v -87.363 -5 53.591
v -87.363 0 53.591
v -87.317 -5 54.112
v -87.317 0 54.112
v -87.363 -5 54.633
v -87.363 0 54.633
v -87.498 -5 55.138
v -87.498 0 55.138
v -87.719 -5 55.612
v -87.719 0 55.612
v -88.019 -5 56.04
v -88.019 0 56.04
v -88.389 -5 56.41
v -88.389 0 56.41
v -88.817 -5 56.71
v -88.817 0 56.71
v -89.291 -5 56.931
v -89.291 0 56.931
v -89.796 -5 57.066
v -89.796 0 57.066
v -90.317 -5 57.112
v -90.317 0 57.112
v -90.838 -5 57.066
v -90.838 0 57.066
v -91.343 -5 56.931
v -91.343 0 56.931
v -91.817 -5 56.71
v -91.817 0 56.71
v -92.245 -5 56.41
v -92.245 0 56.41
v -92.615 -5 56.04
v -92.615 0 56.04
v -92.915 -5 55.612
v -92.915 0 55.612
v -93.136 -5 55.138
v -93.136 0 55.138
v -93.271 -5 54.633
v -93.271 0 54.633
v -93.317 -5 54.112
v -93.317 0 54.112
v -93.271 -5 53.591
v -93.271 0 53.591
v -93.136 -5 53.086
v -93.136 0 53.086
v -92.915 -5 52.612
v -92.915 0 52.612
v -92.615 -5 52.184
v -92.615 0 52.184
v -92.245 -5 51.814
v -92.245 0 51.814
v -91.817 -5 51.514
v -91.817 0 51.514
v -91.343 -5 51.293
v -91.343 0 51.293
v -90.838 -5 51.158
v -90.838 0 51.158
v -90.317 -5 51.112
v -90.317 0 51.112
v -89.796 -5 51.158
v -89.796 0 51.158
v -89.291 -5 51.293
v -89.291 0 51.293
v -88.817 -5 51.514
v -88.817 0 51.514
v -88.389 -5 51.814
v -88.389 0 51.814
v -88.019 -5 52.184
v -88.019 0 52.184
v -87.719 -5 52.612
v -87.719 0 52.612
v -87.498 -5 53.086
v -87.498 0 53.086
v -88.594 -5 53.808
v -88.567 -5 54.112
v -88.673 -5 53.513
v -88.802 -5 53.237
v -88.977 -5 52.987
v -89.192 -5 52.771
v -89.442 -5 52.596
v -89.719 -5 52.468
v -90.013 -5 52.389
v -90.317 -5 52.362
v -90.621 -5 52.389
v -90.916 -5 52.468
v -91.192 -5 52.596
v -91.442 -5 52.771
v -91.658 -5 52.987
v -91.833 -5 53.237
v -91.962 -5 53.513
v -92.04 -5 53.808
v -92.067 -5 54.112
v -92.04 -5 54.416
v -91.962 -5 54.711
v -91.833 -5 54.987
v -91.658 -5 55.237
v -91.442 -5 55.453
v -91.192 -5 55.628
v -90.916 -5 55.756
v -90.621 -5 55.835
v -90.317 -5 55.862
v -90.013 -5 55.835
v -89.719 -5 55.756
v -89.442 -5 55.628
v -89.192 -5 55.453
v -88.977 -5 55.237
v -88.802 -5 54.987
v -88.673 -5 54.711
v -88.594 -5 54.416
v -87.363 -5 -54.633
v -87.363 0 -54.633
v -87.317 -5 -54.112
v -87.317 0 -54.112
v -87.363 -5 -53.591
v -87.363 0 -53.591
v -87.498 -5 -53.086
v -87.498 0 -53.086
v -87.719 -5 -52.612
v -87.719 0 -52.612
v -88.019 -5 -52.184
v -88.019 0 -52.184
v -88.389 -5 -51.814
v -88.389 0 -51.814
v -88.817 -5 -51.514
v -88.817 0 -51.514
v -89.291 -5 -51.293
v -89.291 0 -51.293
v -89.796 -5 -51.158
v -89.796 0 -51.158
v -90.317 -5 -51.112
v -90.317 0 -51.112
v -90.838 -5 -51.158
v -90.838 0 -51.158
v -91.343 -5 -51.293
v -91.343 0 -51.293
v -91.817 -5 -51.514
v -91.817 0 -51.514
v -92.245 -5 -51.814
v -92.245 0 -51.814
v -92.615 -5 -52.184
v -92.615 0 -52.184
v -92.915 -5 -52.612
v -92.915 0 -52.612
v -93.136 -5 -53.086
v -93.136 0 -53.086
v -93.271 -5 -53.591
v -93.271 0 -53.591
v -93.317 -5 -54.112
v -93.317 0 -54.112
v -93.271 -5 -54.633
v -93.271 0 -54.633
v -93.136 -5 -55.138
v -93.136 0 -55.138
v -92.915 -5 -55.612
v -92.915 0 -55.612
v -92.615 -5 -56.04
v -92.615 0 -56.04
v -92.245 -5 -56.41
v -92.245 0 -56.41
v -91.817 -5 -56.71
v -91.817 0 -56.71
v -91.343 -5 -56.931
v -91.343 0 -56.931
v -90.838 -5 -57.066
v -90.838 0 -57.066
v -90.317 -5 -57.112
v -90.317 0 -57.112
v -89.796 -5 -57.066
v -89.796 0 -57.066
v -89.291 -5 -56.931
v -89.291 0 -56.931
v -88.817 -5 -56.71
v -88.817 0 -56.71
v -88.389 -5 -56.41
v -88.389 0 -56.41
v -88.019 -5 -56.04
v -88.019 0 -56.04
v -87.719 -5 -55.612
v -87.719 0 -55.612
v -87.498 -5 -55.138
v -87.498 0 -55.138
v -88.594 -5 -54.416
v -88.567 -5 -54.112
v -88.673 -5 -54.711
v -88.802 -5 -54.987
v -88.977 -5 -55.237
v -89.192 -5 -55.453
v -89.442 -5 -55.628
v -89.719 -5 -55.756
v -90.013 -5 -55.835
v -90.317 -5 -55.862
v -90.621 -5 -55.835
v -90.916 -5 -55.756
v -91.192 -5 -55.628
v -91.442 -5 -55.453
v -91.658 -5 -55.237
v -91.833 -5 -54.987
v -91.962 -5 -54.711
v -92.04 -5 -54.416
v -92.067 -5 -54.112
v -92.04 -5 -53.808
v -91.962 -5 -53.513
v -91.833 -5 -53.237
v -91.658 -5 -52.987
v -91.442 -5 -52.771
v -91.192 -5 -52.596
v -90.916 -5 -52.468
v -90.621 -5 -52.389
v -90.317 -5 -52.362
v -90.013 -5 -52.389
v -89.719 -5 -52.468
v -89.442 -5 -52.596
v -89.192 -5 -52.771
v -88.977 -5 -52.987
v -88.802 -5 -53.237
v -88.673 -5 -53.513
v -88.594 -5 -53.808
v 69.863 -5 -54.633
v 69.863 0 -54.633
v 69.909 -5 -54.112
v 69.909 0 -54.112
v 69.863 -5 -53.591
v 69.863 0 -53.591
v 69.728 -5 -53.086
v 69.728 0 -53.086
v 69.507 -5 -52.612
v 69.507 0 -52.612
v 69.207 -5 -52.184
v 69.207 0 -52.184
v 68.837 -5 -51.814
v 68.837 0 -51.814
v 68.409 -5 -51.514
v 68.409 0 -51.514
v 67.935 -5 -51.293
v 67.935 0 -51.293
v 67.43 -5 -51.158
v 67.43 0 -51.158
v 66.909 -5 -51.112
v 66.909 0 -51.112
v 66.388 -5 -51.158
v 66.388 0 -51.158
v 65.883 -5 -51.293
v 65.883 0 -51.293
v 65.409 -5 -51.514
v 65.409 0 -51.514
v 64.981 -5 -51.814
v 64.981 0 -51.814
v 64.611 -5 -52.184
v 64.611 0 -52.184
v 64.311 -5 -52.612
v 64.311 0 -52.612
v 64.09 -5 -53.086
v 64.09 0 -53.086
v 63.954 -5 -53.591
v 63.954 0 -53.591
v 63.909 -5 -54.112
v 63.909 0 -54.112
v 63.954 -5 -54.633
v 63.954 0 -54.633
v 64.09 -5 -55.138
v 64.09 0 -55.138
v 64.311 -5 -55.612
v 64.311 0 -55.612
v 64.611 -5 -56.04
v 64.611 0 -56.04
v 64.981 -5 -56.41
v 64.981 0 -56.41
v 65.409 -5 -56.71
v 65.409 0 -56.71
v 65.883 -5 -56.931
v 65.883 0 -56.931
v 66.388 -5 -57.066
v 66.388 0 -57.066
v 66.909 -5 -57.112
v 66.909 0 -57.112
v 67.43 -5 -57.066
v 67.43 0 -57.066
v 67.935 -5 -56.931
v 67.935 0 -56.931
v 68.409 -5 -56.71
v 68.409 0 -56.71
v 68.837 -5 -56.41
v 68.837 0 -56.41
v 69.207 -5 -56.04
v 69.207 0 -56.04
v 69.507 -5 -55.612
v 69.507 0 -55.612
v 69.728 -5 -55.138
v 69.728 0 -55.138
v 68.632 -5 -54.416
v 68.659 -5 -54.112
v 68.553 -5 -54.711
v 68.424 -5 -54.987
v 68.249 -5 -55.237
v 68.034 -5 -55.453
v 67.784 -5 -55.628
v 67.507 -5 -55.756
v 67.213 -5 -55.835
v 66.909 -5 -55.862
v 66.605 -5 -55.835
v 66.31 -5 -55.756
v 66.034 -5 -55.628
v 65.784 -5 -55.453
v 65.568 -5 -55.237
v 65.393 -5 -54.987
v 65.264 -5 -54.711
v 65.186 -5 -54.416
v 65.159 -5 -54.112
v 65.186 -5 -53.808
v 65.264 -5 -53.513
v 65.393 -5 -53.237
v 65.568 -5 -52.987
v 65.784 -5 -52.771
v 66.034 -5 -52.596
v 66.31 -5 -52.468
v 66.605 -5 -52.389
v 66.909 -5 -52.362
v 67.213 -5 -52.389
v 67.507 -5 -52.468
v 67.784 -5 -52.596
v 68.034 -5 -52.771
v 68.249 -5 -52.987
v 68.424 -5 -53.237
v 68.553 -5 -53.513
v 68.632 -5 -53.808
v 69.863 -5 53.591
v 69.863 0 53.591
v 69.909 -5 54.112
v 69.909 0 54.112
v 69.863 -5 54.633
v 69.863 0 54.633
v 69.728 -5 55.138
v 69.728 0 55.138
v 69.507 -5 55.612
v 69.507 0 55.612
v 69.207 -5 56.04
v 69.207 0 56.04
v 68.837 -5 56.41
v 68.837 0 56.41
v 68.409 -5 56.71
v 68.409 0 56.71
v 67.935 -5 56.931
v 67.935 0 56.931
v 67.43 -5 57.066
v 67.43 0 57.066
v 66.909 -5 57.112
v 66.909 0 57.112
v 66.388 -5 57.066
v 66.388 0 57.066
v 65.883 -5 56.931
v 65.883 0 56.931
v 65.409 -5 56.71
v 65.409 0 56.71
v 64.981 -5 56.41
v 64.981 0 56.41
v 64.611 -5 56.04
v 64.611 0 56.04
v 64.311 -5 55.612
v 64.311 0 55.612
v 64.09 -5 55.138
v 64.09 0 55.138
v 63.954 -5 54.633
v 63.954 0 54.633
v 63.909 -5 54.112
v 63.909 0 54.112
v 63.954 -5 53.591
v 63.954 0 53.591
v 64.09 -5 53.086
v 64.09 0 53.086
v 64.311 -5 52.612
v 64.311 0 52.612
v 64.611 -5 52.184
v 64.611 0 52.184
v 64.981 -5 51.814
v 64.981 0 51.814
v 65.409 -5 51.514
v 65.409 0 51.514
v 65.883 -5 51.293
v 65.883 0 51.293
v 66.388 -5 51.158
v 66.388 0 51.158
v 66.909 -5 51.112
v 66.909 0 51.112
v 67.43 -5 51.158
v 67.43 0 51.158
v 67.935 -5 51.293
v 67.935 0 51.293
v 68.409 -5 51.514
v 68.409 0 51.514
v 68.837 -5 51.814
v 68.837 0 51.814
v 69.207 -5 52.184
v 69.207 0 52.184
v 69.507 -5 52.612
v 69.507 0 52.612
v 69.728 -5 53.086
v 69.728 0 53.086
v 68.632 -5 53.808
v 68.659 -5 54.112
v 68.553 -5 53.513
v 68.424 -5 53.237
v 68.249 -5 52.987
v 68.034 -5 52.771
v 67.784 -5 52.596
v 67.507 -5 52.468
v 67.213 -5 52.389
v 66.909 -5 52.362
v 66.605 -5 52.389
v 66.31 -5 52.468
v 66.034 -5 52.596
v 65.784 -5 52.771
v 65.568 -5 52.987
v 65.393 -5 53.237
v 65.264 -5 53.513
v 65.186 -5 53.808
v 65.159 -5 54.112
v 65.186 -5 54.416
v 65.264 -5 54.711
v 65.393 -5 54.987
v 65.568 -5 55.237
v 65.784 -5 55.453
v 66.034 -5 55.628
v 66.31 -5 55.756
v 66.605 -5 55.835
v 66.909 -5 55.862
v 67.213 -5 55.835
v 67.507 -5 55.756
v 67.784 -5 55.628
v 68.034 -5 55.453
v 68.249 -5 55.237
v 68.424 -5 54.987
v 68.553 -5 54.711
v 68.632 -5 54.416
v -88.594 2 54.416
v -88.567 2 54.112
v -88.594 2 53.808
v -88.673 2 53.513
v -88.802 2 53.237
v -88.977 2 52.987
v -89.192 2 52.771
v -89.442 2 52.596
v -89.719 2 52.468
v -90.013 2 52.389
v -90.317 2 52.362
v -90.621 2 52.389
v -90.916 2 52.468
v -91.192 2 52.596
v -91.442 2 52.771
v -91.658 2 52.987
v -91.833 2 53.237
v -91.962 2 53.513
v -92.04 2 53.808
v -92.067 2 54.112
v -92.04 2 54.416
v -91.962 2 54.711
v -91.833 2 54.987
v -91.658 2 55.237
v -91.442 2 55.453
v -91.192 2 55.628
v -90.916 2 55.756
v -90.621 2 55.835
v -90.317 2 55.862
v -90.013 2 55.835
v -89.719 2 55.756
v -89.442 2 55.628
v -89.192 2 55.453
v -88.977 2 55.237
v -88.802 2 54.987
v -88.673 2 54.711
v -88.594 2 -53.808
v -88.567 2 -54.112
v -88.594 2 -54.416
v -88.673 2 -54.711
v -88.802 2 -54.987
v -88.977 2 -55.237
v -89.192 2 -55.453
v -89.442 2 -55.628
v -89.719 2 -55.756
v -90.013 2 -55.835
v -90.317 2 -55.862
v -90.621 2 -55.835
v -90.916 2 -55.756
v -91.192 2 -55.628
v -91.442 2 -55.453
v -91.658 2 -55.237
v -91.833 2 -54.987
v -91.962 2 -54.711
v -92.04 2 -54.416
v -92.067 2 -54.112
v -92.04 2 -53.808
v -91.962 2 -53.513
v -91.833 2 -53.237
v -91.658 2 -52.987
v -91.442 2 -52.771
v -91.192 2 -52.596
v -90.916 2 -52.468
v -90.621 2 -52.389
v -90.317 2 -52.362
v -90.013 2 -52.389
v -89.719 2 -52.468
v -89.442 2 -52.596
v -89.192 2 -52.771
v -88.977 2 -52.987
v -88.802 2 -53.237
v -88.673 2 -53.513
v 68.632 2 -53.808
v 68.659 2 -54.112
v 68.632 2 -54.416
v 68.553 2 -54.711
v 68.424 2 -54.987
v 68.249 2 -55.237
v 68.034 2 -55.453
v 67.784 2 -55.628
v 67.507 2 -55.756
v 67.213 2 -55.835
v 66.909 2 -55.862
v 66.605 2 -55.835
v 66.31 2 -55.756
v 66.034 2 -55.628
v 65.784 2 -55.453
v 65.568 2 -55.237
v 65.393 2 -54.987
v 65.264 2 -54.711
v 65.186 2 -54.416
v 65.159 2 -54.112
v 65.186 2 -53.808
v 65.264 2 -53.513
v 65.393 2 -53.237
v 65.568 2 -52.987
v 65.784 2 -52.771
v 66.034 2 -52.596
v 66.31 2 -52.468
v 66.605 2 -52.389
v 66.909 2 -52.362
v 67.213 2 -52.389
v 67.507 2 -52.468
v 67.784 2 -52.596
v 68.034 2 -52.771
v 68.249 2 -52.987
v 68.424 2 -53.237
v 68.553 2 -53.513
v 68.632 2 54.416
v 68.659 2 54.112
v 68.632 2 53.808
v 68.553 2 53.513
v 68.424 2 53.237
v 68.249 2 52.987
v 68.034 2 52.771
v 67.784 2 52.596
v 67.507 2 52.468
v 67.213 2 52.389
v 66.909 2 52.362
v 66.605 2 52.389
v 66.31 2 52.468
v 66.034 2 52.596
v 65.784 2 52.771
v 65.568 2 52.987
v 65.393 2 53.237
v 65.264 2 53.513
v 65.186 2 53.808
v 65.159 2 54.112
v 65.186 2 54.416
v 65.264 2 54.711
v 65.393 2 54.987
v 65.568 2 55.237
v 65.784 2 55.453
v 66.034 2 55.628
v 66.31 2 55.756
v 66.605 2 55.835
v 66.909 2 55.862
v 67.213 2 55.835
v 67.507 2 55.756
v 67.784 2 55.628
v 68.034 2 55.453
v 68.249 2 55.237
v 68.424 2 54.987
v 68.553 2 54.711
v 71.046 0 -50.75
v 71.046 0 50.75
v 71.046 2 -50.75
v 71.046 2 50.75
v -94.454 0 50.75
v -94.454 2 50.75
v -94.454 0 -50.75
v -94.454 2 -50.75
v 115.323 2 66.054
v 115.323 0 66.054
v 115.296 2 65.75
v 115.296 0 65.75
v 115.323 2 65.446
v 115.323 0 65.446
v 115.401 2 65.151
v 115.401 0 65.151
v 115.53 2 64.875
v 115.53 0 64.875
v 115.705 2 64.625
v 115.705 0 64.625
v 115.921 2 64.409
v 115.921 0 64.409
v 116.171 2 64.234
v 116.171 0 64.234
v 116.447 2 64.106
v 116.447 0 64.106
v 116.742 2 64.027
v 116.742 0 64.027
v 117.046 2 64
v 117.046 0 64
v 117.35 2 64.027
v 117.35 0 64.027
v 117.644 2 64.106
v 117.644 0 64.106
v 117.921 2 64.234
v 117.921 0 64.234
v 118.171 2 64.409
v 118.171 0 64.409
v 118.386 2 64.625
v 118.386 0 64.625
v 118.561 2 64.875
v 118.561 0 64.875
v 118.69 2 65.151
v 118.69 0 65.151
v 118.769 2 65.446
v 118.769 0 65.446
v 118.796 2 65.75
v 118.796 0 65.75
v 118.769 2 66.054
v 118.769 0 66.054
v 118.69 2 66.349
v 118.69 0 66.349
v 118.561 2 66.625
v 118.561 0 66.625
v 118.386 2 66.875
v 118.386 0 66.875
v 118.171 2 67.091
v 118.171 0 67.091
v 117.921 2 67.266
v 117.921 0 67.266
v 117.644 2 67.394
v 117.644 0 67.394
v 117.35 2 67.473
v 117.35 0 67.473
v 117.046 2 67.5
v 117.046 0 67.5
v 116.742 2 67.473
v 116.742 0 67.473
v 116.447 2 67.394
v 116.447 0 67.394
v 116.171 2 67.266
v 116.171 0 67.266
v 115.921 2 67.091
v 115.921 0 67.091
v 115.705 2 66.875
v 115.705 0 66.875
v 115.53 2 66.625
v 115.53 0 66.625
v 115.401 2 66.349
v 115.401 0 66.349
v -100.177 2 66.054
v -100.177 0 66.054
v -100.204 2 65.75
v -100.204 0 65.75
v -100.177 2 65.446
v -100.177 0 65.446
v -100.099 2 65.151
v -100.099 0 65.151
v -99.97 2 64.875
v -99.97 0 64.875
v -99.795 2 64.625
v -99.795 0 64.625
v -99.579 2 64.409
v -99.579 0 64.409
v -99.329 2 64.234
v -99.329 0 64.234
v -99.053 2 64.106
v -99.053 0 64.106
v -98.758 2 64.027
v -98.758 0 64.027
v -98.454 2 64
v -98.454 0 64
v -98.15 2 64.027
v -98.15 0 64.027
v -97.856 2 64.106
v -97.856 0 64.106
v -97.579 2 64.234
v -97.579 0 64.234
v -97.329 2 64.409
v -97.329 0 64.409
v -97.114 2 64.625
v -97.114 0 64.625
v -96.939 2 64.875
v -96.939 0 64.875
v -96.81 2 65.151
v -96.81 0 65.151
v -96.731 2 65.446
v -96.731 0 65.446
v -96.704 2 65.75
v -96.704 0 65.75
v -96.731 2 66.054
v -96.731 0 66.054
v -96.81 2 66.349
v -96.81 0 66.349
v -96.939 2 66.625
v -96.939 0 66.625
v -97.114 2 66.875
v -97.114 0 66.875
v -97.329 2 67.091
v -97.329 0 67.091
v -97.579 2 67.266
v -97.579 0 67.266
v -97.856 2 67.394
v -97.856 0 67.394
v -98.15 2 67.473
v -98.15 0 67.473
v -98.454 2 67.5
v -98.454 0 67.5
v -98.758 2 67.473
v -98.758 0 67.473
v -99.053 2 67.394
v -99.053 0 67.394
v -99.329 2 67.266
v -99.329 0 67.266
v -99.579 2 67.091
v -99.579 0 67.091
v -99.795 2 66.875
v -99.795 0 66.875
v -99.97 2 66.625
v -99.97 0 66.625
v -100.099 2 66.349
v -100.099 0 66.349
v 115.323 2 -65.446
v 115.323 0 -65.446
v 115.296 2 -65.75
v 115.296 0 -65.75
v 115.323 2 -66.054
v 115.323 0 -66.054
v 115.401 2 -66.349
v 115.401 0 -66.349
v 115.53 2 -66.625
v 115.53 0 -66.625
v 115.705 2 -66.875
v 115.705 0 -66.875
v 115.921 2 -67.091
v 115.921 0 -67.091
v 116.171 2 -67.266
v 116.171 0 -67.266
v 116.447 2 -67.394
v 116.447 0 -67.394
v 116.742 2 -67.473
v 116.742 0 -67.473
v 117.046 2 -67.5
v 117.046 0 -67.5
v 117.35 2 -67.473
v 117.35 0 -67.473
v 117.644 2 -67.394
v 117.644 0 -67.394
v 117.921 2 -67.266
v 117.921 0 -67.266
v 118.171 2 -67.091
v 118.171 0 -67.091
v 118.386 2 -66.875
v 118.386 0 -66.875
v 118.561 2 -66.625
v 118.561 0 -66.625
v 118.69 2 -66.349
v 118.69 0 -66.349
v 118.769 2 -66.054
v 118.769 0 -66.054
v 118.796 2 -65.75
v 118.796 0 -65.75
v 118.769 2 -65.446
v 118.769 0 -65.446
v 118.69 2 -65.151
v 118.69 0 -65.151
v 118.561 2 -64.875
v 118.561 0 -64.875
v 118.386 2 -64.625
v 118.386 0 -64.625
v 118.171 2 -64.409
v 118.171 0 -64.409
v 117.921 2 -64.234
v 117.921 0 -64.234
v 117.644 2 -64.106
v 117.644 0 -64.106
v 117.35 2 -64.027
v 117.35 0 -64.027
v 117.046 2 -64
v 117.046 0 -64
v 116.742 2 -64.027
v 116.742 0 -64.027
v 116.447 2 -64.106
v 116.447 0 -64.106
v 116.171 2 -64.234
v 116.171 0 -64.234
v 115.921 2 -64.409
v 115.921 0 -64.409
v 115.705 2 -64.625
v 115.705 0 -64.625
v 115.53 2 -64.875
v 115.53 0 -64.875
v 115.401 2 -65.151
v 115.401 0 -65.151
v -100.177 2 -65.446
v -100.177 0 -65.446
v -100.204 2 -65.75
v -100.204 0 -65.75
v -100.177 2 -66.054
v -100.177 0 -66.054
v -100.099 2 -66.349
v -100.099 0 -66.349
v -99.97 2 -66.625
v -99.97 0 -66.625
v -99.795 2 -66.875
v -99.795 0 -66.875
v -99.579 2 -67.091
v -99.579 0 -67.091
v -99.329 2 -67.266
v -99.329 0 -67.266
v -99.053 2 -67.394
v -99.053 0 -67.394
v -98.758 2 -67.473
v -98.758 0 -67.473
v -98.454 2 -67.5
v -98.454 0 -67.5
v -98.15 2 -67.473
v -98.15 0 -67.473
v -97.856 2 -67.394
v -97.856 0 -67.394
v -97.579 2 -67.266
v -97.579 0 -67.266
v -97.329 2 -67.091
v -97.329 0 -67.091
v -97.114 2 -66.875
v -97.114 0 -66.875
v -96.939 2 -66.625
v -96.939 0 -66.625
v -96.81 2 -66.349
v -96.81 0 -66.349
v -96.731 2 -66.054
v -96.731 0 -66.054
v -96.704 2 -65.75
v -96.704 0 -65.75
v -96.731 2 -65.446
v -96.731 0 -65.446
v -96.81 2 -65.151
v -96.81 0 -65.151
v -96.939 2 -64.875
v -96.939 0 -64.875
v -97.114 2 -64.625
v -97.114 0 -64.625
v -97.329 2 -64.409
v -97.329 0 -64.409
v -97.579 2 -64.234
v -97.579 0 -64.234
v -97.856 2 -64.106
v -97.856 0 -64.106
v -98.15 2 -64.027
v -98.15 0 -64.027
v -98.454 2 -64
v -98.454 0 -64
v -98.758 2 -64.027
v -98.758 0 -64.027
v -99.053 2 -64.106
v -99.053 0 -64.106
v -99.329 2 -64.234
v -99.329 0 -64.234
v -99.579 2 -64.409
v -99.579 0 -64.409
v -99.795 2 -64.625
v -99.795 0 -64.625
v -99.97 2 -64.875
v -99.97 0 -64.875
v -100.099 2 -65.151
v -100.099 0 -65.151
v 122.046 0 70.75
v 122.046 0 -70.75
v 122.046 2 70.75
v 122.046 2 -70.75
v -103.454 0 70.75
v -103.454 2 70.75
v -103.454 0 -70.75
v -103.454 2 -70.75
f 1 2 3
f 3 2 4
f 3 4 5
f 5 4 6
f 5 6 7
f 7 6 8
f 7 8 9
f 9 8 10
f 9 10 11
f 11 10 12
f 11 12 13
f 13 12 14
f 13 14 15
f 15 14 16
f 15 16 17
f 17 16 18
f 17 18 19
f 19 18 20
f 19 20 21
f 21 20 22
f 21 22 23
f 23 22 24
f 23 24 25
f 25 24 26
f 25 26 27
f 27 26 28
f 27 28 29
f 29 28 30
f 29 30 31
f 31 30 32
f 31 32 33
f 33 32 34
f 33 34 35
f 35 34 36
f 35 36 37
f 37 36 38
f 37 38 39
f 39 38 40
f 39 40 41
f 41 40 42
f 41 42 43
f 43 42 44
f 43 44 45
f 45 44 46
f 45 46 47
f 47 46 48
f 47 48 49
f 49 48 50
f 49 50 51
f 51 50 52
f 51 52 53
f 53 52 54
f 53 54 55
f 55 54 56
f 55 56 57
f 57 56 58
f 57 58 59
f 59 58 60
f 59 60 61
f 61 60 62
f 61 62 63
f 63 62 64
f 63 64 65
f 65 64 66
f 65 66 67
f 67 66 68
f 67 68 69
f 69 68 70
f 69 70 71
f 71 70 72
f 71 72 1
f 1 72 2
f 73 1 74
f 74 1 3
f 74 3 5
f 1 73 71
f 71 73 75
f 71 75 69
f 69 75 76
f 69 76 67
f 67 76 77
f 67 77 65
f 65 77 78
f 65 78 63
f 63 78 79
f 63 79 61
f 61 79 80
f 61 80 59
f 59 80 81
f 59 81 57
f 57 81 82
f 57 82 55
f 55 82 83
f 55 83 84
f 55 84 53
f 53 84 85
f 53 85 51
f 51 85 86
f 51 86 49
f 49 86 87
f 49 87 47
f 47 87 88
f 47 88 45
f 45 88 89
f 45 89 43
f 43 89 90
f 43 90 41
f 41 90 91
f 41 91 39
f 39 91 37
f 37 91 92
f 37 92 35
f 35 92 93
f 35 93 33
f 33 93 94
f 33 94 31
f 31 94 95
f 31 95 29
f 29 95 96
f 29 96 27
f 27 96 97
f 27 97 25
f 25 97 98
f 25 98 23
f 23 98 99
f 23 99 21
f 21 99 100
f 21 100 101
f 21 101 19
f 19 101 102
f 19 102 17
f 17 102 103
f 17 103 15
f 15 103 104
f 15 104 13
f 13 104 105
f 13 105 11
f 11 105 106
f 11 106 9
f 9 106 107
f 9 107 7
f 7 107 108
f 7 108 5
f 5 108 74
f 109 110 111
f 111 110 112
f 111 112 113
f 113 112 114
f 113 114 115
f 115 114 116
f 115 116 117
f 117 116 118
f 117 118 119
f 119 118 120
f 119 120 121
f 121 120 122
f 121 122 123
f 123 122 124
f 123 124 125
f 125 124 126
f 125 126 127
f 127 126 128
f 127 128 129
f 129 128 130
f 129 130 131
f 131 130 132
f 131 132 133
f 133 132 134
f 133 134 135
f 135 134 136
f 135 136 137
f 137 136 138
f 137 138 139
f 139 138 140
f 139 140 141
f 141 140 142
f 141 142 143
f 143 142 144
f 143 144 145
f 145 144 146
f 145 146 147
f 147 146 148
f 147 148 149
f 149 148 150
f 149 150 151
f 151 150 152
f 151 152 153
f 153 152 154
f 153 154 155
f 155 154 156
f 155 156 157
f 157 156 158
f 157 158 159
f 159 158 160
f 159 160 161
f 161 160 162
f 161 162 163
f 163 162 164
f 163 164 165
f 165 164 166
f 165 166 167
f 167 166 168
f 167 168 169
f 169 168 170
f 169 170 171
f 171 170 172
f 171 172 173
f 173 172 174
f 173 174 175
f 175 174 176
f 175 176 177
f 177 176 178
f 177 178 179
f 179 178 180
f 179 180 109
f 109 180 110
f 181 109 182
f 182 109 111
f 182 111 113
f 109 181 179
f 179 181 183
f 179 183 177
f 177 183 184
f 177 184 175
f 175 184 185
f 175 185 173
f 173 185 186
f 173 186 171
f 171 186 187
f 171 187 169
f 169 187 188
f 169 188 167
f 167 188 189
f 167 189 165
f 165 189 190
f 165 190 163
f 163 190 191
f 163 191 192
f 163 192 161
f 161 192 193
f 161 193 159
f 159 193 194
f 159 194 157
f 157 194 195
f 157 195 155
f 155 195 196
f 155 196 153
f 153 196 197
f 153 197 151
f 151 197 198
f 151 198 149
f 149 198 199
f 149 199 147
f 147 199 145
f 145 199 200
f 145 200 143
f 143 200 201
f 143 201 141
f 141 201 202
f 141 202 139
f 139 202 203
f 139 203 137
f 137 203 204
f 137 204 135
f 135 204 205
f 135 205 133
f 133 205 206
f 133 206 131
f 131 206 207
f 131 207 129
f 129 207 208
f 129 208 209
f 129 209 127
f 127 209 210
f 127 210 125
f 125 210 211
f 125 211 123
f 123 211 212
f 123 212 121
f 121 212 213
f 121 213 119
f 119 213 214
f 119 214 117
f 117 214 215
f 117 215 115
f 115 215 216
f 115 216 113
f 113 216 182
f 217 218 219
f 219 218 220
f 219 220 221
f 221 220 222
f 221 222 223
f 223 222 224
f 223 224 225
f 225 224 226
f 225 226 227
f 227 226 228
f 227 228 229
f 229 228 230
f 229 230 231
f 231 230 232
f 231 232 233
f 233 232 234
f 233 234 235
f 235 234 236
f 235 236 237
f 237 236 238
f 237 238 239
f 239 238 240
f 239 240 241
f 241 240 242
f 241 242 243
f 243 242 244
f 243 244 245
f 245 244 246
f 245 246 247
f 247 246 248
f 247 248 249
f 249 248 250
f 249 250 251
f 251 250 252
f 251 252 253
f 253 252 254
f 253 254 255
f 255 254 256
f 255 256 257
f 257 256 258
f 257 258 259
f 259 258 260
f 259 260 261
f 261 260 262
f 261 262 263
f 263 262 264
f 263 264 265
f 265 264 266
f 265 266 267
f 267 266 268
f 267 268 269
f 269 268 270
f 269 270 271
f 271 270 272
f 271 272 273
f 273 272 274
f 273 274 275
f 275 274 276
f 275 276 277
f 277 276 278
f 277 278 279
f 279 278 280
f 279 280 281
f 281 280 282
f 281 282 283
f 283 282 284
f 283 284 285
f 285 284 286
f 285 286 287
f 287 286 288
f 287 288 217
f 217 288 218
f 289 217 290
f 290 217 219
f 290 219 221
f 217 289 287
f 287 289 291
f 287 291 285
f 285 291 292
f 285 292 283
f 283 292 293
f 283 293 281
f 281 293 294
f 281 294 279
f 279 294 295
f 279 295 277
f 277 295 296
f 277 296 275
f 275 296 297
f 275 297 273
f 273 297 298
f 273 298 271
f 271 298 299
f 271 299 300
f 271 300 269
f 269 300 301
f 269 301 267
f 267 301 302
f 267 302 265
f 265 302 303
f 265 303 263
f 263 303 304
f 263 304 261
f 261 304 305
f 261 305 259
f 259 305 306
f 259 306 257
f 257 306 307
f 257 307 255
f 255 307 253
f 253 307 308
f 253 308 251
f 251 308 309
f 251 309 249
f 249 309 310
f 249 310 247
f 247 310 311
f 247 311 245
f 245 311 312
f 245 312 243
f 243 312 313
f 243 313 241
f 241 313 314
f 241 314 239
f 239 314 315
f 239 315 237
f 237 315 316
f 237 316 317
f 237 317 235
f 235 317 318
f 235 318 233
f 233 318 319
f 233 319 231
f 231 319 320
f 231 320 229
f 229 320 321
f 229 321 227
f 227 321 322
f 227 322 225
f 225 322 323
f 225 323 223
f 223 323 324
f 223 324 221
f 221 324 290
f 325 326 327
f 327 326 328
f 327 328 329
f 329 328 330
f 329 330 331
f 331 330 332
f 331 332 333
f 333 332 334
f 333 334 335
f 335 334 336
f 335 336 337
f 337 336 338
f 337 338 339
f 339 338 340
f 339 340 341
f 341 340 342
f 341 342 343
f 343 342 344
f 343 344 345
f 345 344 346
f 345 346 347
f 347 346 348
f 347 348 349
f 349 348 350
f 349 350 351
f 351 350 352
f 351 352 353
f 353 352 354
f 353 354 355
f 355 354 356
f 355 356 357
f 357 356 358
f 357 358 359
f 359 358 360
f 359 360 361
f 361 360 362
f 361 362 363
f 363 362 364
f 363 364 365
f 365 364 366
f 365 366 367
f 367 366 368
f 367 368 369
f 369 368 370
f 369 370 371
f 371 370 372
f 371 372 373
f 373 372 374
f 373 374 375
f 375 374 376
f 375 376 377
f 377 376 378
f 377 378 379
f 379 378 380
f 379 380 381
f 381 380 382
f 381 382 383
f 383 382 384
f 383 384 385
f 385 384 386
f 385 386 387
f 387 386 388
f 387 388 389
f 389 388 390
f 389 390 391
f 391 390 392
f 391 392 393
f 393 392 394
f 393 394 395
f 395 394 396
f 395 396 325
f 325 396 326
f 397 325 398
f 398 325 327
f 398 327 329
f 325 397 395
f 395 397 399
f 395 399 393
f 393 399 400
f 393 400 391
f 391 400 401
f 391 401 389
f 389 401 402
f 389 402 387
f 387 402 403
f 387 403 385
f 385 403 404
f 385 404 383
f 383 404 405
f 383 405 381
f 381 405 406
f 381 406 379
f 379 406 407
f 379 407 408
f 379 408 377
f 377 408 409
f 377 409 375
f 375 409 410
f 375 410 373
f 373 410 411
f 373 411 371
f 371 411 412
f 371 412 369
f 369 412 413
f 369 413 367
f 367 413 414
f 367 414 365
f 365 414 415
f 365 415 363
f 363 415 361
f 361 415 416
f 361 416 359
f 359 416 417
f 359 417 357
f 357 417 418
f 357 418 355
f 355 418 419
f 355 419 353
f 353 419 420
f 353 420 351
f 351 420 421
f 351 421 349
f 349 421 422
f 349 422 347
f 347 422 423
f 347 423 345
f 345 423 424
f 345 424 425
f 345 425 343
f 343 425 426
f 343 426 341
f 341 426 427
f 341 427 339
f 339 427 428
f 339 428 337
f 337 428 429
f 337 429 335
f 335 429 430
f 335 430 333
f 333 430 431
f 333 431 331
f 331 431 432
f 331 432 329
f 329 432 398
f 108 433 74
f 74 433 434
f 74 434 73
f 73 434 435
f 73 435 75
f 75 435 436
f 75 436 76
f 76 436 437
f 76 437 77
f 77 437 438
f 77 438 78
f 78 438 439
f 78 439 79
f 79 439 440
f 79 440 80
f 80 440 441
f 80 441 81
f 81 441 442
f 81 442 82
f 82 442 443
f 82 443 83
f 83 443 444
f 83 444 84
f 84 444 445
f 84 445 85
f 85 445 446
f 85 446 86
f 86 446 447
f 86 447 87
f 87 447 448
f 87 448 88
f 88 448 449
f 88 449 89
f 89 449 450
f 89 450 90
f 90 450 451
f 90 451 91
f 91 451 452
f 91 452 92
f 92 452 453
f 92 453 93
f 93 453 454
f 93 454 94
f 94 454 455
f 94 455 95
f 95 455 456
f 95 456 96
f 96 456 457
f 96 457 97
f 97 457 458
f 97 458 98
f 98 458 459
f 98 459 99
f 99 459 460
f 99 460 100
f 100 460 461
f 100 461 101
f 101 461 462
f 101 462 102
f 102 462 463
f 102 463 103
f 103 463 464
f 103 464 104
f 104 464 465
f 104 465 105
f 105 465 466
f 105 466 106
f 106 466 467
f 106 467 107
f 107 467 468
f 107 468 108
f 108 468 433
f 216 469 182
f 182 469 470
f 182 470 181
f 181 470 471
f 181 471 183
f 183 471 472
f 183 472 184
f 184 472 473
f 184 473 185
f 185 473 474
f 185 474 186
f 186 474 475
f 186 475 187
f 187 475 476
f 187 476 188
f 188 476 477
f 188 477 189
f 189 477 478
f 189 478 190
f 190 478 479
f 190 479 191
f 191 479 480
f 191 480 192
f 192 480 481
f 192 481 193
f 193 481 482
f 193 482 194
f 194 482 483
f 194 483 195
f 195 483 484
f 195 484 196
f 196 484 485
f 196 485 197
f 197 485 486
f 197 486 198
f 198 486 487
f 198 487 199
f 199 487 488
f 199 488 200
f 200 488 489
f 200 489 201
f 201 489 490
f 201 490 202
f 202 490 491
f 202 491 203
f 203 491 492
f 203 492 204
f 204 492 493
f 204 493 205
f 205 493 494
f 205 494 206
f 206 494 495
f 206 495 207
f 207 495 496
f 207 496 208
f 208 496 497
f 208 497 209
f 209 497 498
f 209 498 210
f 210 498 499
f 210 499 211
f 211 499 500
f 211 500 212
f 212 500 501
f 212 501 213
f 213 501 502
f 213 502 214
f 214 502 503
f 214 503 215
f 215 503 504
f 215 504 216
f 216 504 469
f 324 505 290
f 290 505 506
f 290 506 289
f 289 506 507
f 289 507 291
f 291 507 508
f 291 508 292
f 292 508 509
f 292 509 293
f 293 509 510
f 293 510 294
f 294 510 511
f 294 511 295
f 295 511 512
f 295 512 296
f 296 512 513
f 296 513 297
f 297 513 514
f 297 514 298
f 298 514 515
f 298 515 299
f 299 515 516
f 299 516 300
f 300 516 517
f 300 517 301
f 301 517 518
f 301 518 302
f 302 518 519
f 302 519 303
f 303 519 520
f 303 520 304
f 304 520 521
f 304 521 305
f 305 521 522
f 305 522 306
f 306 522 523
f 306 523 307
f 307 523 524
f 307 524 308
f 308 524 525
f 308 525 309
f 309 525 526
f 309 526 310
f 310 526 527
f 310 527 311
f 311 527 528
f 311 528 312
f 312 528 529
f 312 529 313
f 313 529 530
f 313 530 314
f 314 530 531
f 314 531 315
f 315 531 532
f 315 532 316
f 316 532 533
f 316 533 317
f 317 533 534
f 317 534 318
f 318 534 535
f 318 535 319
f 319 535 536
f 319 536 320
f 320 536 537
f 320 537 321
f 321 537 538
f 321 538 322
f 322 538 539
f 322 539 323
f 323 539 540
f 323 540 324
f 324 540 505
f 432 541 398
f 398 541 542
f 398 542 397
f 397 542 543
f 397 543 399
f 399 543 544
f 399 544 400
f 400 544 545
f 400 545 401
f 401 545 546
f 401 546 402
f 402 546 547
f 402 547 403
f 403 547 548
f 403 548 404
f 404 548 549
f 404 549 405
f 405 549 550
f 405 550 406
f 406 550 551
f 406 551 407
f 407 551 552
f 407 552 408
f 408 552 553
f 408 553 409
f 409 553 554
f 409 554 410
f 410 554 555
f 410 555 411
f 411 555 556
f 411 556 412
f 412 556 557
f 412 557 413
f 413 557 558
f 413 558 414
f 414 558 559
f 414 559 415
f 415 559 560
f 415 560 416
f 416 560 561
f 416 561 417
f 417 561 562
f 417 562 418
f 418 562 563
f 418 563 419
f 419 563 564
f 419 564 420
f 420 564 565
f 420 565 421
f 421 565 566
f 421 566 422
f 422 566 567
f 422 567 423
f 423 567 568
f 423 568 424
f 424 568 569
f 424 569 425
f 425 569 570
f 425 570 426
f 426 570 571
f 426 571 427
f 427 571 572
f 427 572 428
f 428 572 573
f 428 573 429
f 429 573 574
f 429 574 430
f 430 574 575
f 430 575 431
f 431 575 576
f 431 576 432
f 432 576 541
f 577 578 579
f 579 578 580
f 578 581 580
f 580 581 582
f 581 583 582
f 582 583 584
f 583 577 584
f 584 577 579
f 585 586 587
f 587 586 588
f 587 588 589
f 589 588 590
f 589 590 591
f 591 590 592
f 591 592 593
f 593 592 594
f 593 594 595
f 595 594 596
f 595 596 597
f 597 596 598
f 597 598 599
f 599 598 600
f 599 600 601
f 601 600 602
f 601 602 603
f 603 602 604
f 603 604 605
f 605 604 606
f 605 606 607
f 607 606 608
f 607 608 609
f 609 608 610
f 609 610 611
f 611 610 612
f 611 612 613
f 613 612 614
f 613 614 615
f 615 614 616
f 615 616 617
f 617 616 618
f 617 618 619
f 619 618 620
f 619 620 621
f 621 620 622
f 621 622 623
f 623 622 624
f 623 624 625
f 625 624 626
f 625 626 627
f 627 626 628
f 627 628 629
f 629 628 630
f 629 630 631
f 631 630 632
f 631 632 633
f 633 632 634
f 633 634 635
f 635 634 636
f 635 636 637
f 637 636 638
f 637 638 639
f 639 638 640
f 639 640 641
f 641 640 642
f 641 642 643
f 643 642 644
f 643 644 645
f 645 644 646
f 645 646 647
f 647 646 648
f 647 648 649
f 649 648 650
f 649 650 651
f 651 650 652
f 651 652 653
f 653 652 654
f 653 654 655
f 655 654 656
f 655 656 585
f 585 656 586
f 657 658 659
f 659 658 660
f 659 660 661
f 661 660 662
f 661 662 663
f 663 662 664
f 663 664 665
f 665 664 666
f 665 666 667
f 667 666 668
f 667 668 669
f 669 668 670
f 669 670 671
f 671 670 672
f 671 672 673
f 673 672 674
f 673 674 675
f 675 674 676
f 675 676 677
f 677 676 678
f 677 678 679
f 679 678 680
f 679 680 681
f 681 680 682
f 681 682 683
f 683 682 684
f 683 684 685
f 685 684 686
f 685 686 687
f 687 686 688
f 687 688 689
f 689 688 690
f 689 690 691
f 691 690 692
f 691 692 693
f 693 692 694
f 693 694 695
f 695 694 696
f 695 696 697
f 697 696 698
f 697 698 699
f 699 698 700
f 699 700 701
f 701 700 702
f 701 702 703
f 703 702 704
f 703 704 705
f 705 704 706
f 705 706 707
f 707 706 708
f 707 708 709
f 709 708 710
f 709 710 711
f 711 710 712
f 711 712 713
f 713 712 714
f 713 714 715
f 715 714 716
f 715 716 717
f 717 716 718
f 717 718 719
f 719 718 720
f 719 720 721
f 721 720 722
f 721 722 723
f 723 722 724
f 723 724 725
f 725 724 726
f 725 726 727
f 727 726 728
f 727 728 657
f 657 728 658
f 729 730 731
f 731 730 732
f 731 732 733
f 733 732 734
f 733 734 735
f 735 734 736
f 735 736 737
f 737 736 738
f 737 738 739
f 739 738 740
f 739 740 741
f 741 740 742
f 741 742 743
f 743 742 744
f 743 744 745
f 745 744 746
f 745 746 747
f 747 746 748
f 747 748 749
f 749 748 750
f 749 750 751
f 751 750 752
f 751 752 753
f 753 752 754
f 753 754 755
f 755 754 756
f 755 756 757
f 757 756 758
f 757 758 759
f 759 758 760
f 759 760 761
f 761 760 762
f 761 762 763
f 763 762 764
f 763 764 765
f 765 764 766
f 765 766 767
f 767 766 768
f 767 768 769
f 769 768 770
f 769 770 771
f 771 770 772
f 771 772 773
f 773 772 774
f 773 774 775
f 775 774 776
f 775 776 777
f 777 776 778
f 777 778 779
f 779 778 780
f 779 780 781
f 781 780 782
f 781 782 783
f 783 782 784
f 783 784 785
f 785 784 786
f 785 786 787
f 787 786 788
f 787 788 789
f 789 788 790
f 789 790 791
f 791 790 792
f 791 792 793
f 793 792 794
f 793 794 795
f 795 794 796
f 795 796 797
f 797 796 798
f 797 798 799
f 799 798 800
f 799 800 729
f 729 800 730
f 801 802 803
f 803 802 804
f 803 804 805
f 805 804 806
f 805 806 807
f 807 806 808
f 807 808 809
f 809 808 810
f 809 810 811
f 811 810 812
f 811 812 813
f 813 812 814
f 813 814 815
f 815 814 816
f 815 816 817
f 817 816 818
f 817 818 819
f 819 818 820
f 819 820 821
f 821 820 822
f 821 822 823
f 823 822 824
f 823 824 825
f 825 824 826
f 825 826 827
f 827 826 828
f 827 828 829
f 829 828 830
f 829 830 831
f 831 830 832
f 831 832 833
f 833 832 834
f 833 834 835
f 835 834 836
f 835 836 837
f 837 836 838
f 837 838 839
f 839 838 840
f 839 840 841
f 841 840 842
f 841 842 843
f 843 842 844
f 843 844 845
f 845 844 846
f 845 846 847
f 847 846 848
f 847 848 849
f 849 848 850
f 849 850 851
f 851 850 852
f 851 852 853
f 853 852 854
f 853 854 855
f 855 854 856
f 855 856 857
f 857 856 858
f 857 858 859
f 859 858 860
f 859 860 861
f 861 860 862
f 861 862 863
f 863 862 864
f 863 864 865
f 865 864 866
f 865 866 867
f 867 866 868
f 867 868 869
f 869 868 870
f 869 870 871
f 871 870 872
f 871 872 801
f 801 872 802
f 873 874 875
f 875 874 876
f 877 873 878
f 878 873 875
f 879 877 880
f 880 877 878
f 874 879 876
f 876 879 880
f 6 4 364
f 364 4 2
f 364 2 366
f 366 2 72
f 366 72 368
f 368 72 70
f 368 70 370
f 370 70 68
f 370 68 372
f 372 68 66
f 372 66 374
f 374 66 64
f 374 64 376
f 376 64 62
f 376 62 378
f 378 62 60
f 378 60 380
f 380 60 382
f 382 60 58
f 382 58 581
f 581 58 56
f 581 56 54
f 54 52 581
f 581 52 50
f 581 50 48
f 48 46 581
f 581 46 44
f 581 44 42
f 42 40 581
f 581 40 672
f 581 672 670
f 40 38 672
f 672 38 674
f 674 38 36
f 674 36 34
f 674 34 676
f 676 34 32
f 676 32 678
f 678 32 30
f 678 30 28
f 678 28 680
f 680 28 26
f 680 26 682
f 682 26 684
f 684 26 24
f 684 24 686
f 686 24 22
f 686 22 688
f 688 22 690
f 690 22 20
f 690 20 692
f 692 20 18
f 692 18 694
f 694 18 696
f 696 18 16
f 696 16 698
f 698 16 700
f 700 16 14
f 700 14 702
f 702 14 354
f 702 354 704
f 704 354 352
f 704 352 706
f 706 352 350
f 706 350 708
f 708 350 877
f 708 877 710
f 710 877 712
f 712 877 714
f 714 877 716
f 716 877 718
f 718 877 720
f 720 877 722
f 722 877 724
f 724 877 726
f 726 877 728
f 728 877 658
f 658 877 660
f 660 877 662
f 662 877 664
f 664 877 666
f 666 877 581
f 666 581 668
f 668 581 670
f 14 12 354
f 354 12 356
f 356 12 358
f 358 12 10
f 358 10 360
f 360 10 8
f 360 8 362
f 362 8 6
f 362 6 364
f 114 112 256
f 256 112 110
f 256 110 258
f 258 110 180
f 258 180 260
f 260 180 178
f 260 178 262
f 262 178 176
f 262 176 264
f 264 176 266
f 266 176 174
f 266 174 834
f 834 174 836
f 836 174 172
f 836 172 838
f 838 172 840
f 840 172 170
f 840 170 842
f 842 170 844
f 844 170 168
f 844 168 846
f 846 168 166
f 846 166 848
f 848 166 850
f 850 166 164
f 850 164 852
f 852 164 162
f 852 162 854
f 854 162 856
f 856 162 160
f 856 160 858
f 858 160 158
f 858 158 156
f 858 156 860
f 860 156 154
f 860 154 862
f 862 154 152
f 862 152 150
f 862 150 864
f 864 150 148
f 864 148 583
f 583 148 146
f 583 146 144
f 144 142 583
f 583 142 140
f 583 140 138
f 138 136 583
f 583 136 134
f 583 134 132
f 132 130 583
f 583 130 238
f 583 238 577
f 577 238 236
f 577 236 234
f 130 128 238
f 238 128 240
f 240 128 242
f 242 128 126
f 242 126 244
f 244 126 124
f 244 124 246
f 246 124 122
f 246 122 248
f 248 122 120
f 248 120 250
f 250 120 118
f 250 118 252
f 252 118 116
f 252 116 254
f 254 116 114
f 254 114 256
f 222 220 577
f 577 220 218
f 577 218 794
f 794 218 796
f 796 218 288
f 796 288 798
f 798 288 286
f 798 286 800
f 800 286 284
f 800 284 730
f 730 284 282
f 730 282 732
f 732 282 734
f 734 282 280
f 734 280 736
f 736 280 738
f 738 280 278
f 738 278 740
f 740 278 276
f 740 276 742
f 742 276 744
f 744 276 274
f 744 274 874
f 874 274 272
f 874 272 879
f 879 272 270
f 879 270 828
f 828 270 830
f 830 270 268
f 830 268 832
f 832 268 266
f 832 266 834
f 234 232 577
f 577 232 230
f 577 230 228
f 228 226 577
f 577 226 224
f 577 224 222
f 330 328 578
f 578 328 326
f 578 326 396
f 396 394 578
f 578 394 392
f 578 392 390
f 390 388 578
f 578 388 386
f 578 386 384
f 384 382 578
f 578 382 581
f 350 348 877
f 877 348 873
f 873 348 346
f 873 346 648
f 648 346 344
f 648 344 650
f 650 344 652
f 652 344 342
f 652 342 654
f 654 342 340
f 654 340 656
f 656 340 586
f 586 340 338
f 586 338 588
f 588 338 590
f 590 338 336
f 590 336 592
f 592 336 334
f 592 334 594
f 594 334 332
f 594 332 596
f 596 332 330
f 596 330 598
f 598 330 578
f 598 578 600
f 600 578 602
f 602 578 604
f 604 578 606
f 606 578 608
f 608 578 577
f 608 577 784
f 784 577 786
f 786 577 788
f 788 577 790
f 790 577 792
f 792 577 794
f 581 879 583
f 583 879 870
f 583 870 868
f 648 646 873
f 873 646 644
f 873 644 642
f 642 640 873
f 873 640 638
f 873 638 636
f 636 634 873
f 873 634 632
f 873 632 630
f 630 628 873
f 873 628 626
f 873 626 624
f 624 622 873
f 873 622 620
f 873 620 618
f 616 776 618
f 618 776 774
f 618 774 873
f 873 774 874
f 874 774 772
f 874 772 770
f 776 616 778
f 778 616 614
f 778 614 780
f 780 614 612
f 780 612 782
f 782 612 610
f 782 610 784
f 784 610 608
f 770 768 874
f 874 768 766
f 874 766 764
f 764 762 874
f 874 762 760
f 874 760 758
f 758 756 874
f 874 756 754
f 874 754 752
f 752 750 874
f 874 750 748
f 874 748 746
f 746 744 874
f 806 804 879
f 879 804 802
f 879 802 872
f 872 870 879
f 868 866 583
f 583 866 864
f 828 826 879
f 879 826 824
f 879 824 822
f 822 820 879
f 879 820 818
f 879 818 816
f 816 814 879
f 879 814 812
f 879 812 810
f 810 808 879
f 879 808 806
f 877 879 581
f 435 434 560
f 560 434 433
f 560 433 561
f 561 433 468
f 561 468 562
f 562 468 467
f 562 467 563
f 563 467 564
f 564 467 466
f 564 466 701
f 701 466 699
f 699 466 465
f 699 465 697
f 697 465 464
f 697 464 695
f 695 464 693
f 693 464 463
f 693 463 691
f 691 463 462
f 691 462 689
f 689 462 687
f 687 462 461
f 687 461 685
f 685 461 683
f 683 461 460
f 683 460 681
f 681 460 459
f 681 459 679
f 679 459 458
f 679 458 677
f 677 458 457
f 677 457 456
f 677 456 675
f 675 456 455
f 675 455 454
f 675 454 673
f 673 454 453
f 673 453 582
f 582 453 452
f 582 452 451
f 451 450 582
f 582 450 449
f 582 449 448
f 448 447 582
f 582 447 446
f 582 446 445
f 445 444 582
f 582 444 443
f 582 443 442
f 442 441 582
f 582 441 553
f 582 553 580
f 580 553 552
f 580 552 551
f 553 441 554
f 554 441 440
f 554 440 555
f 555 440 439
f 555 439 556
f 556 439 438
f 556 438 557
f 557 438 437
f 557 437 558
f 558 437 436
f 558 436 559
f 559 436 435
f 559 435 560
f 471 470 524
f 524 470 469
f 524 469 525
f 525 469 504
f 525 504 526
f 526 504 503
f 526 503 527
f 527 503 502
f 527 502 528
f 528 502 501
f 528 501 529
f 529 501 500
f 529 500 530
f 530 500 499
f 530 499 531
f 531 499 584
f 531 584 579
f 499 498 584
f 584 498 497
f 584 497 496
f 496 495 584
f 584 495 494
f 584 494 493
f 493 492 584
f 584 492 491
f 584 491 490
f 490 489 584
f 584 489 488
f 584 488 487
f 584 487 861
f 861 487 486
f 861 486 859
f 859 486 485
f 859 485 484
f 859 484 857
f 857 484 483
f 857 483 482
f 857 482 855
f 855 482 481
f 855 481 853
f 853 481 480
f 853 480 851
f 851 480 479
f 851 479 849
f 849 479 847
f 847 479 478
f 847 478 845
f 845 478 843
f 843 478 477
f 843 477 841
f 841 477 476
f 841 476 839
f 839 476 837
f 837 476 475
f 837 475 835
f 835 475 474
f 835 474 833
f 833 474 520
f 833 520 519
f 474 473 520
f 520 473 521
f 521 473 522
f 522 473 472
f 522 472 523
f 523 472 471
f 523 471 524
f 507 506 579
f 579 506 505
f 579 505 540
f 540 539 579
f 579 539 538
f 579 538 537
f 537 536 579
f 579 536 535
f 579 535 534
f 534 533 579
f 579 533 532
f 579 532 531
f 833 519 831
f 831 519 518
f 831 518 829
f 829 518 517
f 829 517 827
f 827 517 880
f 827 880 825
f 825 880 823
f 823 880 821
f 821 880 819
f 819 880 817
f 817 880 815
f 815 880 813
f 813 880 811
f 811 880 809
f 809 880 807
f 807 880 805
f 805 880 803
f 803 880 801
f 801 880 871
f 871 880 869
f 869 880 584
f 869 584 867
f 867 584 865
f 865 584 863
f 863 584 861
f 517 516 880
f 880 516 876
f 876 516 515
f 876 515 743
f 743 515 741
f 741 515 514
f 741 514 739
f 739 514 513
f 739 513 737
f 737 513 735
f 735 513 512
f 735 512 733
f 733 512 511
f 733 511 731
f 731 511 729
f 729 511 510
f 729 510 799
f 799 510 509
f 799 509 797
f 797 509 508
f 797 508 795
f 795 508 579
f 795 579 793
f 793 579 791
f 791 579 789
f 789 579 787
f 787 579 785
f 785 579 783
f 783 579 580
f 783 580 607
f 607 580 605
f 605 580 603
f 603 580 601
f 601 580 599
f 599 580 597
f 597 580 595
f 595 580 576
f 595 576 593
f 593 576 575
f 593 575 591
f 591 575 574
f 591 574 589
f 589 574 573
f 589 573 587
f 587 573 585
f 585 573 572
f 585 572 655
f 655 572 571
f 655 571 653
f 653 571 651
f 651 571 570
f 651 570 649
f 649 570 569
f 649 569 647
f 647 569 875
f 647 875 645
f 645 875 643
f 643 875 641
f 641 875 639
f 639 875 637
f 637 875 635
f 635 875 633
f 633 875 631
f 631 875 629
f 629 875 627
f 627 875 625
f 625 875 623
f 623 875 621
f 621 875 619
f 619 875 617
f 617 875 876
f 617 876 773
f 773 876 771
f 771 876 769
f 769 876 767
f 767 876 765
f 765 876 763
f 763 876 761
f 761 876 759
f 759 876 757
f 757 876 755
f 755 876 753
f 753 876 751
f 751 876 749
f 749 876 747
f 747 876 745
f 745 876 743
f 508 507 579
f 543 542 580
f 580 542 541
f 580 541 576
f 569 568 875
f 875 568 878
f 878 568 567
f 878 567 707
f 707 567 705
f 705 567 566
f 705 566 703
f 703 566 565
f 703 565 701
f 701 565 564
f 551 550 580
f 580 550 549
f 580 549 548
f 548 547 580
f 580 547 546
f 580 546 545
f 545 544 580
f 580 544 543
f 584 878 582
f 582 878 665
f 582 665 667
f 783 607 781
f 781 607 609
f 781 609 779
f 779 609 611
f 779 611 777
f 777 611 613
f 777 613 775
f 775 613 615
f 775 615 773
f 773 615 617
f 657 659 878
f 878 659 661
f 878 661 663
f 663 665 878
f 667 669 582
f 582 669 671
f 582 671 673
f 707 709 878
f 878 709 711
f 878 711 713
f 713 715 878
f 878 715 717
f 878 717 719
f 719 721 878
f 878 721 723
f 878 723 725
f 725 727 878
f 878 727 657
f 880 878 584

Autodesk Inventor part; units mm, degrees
ref_plane "YZ Plane" through (0, 0, 0) normal (1, 0, 0) x (0, 1, 0)
ref_plane "XZ Plane" through (0, 0, 0) normal (0, 1, 0) x (-1, 0, 0)
ref_plane "XY Plane" through (0, 0, 0) normal (0, 0, 1) x (1, 0, 0)
sketch "Sketch1" plane through (0, 0, 0) normal (0, 1, 0) x (-1, 0, 0)
  line L0 (103.4541, -70.75) -> (-122.0459, -70.75)
  line L1 (-122.0459, -70.75) -> (-122.0459, 70.75)
  line L2 (-122.0459, 70.75) -> (103.4541, 70.75)
  line L3 (103.4541, 70.75) -> (103.4541, -70.75)
  line L4 (94.4541, -50.75) -> (-71.0459, -50.75)
  line L5 (-71.0459, -50.75) -> (-71.0459, 50.75)
  line L6 (-71.0459, 50.75) -> (94.4541, 50.75)
  line L7 (94.4541, 50.75) -> (94.4541, -50.75)
  line L8 (11.7041, -50.75) -> (11.7041, 50.75) construction
  line L9 (94.4541, 0) -> (-71.0459, 0) construction
  circle A0 centre (98.4541, -65.75) radius 1.75
  line L10 (103.4541, -70.75) -> (98.4541, -70.75) construction
  line L11 (98.4541, -70.75) -> (98.4541, -65.75) construction
  line L12 (98.4541, -65.75) -> (103.4541, -65.75) construction
  line L13 (103.4541, -65.75) -> (103.4541, -70.75) construction
  circle A1 centre (-117.0459, -65.75) radius 1.75
  circle A2 centre (98.4541, 65.75) radius 1.75
  circle A3 centre (-117.0459, 65.75) radius 1.75
  dimension "d0" = 101.5
  dimension "d1" = 165.5
  dimension "d3" = 20
  dimension "d4" = 3.5
  dimension "d5" = 5
  dimension "d6" = 5
  dimension "d14" = 225.5
  dimension "d16" = 9
  dimension "d21" = 5
  dimension "d22" = 5
extrude "Extrusion1" add sketch "Sketch1" along normal blind 2
sketch "Sketch2" plane through (0, 2, 0) normal (0, 1, 0) x (1, 0, 0)
  line L0 (122.0459, 70.75) -> (-103.4541, 70.75) construction
  line L1 (-103.4541, -70.75) -> (122.0459, -70.75) construction
  line L2 (-103.4541, 70.75) -> (-103.4541, -70.75) construction
  line L3 (-103.4541, 0) -> (122.0459, 0) construction
  line L4 (122.0459, -70.75) -> (122.0459, 70.75) construction
  circle A0 centre (-90.3171, 54.112) radius 1.75
  circle A1 centre (66.9089, 54.112) radius 1.75
  circle A2 centre (-90.3171, -54.112) radius 1.75
  circle A3 centre (66.9089, -54.112) radius 1.75
  line L5 (71.0459, -50.75) -> (-94.4541, -50.75) construction
  line L6 (-11.7041, -50.75) -> (-11.7041, 50.75) construction
  line L7 (-94.4541, 50.75) -> (71.0459, 50.75) construction
  point P0 (0, 0)
  dimension "d9" = 3.5
  dimension "d11" = 108.224
  dimension "d17" = 157.226
extrude "Extrusion2" cut sketch "Sketch2" against normal up to next
sketch "Sketch3" plane through (0, 2, 0) normal (0, 1, 0) x (1, 0, 0)
  circle A0 centre (-90.3171, 54.112) radius 1.75 projected
  circle A1 centre (-90.3171, 54.112) radius 3
  line L0 (-94.4541, 50.75) -> (71.0459, 50.75) construction
  line L1 (-11.7041, 50.75) -> (-11.7041, -50.75) construction
  line L2 (71.0459, -50.75) -> (-94.4541, -50.75) construction
  line L3 (-94.4541, -50.75) -> (-94.4541, 50.75) construction
  line L4 (-94.4541, 0) -> (71.0459, 0) construction
  line L5 (71.0459, -50.75) -> (71.0459, 50.75) construction
  circle A2 centre (66.9089, 54.112) radius 3
  circle A3 centre (-90.3171, -54.112) radius 3
  circle A4 centre (66.9089, -54.112) radius 3
  circle A5 centre (-90.3171, -54.112) radius 1.75 projected
  circle A6 centre (66.9089, -54.112) radius 1.75 projected
  circle A7 centre (66.9089, 54.112) radius 1.75 projected
  point P0 (0, 0)
  dimension "d18" = 6
extrude "Extrusion3" add sketch "Sketch3" against normal blind 7
properties part number "touchscreen_lid"
